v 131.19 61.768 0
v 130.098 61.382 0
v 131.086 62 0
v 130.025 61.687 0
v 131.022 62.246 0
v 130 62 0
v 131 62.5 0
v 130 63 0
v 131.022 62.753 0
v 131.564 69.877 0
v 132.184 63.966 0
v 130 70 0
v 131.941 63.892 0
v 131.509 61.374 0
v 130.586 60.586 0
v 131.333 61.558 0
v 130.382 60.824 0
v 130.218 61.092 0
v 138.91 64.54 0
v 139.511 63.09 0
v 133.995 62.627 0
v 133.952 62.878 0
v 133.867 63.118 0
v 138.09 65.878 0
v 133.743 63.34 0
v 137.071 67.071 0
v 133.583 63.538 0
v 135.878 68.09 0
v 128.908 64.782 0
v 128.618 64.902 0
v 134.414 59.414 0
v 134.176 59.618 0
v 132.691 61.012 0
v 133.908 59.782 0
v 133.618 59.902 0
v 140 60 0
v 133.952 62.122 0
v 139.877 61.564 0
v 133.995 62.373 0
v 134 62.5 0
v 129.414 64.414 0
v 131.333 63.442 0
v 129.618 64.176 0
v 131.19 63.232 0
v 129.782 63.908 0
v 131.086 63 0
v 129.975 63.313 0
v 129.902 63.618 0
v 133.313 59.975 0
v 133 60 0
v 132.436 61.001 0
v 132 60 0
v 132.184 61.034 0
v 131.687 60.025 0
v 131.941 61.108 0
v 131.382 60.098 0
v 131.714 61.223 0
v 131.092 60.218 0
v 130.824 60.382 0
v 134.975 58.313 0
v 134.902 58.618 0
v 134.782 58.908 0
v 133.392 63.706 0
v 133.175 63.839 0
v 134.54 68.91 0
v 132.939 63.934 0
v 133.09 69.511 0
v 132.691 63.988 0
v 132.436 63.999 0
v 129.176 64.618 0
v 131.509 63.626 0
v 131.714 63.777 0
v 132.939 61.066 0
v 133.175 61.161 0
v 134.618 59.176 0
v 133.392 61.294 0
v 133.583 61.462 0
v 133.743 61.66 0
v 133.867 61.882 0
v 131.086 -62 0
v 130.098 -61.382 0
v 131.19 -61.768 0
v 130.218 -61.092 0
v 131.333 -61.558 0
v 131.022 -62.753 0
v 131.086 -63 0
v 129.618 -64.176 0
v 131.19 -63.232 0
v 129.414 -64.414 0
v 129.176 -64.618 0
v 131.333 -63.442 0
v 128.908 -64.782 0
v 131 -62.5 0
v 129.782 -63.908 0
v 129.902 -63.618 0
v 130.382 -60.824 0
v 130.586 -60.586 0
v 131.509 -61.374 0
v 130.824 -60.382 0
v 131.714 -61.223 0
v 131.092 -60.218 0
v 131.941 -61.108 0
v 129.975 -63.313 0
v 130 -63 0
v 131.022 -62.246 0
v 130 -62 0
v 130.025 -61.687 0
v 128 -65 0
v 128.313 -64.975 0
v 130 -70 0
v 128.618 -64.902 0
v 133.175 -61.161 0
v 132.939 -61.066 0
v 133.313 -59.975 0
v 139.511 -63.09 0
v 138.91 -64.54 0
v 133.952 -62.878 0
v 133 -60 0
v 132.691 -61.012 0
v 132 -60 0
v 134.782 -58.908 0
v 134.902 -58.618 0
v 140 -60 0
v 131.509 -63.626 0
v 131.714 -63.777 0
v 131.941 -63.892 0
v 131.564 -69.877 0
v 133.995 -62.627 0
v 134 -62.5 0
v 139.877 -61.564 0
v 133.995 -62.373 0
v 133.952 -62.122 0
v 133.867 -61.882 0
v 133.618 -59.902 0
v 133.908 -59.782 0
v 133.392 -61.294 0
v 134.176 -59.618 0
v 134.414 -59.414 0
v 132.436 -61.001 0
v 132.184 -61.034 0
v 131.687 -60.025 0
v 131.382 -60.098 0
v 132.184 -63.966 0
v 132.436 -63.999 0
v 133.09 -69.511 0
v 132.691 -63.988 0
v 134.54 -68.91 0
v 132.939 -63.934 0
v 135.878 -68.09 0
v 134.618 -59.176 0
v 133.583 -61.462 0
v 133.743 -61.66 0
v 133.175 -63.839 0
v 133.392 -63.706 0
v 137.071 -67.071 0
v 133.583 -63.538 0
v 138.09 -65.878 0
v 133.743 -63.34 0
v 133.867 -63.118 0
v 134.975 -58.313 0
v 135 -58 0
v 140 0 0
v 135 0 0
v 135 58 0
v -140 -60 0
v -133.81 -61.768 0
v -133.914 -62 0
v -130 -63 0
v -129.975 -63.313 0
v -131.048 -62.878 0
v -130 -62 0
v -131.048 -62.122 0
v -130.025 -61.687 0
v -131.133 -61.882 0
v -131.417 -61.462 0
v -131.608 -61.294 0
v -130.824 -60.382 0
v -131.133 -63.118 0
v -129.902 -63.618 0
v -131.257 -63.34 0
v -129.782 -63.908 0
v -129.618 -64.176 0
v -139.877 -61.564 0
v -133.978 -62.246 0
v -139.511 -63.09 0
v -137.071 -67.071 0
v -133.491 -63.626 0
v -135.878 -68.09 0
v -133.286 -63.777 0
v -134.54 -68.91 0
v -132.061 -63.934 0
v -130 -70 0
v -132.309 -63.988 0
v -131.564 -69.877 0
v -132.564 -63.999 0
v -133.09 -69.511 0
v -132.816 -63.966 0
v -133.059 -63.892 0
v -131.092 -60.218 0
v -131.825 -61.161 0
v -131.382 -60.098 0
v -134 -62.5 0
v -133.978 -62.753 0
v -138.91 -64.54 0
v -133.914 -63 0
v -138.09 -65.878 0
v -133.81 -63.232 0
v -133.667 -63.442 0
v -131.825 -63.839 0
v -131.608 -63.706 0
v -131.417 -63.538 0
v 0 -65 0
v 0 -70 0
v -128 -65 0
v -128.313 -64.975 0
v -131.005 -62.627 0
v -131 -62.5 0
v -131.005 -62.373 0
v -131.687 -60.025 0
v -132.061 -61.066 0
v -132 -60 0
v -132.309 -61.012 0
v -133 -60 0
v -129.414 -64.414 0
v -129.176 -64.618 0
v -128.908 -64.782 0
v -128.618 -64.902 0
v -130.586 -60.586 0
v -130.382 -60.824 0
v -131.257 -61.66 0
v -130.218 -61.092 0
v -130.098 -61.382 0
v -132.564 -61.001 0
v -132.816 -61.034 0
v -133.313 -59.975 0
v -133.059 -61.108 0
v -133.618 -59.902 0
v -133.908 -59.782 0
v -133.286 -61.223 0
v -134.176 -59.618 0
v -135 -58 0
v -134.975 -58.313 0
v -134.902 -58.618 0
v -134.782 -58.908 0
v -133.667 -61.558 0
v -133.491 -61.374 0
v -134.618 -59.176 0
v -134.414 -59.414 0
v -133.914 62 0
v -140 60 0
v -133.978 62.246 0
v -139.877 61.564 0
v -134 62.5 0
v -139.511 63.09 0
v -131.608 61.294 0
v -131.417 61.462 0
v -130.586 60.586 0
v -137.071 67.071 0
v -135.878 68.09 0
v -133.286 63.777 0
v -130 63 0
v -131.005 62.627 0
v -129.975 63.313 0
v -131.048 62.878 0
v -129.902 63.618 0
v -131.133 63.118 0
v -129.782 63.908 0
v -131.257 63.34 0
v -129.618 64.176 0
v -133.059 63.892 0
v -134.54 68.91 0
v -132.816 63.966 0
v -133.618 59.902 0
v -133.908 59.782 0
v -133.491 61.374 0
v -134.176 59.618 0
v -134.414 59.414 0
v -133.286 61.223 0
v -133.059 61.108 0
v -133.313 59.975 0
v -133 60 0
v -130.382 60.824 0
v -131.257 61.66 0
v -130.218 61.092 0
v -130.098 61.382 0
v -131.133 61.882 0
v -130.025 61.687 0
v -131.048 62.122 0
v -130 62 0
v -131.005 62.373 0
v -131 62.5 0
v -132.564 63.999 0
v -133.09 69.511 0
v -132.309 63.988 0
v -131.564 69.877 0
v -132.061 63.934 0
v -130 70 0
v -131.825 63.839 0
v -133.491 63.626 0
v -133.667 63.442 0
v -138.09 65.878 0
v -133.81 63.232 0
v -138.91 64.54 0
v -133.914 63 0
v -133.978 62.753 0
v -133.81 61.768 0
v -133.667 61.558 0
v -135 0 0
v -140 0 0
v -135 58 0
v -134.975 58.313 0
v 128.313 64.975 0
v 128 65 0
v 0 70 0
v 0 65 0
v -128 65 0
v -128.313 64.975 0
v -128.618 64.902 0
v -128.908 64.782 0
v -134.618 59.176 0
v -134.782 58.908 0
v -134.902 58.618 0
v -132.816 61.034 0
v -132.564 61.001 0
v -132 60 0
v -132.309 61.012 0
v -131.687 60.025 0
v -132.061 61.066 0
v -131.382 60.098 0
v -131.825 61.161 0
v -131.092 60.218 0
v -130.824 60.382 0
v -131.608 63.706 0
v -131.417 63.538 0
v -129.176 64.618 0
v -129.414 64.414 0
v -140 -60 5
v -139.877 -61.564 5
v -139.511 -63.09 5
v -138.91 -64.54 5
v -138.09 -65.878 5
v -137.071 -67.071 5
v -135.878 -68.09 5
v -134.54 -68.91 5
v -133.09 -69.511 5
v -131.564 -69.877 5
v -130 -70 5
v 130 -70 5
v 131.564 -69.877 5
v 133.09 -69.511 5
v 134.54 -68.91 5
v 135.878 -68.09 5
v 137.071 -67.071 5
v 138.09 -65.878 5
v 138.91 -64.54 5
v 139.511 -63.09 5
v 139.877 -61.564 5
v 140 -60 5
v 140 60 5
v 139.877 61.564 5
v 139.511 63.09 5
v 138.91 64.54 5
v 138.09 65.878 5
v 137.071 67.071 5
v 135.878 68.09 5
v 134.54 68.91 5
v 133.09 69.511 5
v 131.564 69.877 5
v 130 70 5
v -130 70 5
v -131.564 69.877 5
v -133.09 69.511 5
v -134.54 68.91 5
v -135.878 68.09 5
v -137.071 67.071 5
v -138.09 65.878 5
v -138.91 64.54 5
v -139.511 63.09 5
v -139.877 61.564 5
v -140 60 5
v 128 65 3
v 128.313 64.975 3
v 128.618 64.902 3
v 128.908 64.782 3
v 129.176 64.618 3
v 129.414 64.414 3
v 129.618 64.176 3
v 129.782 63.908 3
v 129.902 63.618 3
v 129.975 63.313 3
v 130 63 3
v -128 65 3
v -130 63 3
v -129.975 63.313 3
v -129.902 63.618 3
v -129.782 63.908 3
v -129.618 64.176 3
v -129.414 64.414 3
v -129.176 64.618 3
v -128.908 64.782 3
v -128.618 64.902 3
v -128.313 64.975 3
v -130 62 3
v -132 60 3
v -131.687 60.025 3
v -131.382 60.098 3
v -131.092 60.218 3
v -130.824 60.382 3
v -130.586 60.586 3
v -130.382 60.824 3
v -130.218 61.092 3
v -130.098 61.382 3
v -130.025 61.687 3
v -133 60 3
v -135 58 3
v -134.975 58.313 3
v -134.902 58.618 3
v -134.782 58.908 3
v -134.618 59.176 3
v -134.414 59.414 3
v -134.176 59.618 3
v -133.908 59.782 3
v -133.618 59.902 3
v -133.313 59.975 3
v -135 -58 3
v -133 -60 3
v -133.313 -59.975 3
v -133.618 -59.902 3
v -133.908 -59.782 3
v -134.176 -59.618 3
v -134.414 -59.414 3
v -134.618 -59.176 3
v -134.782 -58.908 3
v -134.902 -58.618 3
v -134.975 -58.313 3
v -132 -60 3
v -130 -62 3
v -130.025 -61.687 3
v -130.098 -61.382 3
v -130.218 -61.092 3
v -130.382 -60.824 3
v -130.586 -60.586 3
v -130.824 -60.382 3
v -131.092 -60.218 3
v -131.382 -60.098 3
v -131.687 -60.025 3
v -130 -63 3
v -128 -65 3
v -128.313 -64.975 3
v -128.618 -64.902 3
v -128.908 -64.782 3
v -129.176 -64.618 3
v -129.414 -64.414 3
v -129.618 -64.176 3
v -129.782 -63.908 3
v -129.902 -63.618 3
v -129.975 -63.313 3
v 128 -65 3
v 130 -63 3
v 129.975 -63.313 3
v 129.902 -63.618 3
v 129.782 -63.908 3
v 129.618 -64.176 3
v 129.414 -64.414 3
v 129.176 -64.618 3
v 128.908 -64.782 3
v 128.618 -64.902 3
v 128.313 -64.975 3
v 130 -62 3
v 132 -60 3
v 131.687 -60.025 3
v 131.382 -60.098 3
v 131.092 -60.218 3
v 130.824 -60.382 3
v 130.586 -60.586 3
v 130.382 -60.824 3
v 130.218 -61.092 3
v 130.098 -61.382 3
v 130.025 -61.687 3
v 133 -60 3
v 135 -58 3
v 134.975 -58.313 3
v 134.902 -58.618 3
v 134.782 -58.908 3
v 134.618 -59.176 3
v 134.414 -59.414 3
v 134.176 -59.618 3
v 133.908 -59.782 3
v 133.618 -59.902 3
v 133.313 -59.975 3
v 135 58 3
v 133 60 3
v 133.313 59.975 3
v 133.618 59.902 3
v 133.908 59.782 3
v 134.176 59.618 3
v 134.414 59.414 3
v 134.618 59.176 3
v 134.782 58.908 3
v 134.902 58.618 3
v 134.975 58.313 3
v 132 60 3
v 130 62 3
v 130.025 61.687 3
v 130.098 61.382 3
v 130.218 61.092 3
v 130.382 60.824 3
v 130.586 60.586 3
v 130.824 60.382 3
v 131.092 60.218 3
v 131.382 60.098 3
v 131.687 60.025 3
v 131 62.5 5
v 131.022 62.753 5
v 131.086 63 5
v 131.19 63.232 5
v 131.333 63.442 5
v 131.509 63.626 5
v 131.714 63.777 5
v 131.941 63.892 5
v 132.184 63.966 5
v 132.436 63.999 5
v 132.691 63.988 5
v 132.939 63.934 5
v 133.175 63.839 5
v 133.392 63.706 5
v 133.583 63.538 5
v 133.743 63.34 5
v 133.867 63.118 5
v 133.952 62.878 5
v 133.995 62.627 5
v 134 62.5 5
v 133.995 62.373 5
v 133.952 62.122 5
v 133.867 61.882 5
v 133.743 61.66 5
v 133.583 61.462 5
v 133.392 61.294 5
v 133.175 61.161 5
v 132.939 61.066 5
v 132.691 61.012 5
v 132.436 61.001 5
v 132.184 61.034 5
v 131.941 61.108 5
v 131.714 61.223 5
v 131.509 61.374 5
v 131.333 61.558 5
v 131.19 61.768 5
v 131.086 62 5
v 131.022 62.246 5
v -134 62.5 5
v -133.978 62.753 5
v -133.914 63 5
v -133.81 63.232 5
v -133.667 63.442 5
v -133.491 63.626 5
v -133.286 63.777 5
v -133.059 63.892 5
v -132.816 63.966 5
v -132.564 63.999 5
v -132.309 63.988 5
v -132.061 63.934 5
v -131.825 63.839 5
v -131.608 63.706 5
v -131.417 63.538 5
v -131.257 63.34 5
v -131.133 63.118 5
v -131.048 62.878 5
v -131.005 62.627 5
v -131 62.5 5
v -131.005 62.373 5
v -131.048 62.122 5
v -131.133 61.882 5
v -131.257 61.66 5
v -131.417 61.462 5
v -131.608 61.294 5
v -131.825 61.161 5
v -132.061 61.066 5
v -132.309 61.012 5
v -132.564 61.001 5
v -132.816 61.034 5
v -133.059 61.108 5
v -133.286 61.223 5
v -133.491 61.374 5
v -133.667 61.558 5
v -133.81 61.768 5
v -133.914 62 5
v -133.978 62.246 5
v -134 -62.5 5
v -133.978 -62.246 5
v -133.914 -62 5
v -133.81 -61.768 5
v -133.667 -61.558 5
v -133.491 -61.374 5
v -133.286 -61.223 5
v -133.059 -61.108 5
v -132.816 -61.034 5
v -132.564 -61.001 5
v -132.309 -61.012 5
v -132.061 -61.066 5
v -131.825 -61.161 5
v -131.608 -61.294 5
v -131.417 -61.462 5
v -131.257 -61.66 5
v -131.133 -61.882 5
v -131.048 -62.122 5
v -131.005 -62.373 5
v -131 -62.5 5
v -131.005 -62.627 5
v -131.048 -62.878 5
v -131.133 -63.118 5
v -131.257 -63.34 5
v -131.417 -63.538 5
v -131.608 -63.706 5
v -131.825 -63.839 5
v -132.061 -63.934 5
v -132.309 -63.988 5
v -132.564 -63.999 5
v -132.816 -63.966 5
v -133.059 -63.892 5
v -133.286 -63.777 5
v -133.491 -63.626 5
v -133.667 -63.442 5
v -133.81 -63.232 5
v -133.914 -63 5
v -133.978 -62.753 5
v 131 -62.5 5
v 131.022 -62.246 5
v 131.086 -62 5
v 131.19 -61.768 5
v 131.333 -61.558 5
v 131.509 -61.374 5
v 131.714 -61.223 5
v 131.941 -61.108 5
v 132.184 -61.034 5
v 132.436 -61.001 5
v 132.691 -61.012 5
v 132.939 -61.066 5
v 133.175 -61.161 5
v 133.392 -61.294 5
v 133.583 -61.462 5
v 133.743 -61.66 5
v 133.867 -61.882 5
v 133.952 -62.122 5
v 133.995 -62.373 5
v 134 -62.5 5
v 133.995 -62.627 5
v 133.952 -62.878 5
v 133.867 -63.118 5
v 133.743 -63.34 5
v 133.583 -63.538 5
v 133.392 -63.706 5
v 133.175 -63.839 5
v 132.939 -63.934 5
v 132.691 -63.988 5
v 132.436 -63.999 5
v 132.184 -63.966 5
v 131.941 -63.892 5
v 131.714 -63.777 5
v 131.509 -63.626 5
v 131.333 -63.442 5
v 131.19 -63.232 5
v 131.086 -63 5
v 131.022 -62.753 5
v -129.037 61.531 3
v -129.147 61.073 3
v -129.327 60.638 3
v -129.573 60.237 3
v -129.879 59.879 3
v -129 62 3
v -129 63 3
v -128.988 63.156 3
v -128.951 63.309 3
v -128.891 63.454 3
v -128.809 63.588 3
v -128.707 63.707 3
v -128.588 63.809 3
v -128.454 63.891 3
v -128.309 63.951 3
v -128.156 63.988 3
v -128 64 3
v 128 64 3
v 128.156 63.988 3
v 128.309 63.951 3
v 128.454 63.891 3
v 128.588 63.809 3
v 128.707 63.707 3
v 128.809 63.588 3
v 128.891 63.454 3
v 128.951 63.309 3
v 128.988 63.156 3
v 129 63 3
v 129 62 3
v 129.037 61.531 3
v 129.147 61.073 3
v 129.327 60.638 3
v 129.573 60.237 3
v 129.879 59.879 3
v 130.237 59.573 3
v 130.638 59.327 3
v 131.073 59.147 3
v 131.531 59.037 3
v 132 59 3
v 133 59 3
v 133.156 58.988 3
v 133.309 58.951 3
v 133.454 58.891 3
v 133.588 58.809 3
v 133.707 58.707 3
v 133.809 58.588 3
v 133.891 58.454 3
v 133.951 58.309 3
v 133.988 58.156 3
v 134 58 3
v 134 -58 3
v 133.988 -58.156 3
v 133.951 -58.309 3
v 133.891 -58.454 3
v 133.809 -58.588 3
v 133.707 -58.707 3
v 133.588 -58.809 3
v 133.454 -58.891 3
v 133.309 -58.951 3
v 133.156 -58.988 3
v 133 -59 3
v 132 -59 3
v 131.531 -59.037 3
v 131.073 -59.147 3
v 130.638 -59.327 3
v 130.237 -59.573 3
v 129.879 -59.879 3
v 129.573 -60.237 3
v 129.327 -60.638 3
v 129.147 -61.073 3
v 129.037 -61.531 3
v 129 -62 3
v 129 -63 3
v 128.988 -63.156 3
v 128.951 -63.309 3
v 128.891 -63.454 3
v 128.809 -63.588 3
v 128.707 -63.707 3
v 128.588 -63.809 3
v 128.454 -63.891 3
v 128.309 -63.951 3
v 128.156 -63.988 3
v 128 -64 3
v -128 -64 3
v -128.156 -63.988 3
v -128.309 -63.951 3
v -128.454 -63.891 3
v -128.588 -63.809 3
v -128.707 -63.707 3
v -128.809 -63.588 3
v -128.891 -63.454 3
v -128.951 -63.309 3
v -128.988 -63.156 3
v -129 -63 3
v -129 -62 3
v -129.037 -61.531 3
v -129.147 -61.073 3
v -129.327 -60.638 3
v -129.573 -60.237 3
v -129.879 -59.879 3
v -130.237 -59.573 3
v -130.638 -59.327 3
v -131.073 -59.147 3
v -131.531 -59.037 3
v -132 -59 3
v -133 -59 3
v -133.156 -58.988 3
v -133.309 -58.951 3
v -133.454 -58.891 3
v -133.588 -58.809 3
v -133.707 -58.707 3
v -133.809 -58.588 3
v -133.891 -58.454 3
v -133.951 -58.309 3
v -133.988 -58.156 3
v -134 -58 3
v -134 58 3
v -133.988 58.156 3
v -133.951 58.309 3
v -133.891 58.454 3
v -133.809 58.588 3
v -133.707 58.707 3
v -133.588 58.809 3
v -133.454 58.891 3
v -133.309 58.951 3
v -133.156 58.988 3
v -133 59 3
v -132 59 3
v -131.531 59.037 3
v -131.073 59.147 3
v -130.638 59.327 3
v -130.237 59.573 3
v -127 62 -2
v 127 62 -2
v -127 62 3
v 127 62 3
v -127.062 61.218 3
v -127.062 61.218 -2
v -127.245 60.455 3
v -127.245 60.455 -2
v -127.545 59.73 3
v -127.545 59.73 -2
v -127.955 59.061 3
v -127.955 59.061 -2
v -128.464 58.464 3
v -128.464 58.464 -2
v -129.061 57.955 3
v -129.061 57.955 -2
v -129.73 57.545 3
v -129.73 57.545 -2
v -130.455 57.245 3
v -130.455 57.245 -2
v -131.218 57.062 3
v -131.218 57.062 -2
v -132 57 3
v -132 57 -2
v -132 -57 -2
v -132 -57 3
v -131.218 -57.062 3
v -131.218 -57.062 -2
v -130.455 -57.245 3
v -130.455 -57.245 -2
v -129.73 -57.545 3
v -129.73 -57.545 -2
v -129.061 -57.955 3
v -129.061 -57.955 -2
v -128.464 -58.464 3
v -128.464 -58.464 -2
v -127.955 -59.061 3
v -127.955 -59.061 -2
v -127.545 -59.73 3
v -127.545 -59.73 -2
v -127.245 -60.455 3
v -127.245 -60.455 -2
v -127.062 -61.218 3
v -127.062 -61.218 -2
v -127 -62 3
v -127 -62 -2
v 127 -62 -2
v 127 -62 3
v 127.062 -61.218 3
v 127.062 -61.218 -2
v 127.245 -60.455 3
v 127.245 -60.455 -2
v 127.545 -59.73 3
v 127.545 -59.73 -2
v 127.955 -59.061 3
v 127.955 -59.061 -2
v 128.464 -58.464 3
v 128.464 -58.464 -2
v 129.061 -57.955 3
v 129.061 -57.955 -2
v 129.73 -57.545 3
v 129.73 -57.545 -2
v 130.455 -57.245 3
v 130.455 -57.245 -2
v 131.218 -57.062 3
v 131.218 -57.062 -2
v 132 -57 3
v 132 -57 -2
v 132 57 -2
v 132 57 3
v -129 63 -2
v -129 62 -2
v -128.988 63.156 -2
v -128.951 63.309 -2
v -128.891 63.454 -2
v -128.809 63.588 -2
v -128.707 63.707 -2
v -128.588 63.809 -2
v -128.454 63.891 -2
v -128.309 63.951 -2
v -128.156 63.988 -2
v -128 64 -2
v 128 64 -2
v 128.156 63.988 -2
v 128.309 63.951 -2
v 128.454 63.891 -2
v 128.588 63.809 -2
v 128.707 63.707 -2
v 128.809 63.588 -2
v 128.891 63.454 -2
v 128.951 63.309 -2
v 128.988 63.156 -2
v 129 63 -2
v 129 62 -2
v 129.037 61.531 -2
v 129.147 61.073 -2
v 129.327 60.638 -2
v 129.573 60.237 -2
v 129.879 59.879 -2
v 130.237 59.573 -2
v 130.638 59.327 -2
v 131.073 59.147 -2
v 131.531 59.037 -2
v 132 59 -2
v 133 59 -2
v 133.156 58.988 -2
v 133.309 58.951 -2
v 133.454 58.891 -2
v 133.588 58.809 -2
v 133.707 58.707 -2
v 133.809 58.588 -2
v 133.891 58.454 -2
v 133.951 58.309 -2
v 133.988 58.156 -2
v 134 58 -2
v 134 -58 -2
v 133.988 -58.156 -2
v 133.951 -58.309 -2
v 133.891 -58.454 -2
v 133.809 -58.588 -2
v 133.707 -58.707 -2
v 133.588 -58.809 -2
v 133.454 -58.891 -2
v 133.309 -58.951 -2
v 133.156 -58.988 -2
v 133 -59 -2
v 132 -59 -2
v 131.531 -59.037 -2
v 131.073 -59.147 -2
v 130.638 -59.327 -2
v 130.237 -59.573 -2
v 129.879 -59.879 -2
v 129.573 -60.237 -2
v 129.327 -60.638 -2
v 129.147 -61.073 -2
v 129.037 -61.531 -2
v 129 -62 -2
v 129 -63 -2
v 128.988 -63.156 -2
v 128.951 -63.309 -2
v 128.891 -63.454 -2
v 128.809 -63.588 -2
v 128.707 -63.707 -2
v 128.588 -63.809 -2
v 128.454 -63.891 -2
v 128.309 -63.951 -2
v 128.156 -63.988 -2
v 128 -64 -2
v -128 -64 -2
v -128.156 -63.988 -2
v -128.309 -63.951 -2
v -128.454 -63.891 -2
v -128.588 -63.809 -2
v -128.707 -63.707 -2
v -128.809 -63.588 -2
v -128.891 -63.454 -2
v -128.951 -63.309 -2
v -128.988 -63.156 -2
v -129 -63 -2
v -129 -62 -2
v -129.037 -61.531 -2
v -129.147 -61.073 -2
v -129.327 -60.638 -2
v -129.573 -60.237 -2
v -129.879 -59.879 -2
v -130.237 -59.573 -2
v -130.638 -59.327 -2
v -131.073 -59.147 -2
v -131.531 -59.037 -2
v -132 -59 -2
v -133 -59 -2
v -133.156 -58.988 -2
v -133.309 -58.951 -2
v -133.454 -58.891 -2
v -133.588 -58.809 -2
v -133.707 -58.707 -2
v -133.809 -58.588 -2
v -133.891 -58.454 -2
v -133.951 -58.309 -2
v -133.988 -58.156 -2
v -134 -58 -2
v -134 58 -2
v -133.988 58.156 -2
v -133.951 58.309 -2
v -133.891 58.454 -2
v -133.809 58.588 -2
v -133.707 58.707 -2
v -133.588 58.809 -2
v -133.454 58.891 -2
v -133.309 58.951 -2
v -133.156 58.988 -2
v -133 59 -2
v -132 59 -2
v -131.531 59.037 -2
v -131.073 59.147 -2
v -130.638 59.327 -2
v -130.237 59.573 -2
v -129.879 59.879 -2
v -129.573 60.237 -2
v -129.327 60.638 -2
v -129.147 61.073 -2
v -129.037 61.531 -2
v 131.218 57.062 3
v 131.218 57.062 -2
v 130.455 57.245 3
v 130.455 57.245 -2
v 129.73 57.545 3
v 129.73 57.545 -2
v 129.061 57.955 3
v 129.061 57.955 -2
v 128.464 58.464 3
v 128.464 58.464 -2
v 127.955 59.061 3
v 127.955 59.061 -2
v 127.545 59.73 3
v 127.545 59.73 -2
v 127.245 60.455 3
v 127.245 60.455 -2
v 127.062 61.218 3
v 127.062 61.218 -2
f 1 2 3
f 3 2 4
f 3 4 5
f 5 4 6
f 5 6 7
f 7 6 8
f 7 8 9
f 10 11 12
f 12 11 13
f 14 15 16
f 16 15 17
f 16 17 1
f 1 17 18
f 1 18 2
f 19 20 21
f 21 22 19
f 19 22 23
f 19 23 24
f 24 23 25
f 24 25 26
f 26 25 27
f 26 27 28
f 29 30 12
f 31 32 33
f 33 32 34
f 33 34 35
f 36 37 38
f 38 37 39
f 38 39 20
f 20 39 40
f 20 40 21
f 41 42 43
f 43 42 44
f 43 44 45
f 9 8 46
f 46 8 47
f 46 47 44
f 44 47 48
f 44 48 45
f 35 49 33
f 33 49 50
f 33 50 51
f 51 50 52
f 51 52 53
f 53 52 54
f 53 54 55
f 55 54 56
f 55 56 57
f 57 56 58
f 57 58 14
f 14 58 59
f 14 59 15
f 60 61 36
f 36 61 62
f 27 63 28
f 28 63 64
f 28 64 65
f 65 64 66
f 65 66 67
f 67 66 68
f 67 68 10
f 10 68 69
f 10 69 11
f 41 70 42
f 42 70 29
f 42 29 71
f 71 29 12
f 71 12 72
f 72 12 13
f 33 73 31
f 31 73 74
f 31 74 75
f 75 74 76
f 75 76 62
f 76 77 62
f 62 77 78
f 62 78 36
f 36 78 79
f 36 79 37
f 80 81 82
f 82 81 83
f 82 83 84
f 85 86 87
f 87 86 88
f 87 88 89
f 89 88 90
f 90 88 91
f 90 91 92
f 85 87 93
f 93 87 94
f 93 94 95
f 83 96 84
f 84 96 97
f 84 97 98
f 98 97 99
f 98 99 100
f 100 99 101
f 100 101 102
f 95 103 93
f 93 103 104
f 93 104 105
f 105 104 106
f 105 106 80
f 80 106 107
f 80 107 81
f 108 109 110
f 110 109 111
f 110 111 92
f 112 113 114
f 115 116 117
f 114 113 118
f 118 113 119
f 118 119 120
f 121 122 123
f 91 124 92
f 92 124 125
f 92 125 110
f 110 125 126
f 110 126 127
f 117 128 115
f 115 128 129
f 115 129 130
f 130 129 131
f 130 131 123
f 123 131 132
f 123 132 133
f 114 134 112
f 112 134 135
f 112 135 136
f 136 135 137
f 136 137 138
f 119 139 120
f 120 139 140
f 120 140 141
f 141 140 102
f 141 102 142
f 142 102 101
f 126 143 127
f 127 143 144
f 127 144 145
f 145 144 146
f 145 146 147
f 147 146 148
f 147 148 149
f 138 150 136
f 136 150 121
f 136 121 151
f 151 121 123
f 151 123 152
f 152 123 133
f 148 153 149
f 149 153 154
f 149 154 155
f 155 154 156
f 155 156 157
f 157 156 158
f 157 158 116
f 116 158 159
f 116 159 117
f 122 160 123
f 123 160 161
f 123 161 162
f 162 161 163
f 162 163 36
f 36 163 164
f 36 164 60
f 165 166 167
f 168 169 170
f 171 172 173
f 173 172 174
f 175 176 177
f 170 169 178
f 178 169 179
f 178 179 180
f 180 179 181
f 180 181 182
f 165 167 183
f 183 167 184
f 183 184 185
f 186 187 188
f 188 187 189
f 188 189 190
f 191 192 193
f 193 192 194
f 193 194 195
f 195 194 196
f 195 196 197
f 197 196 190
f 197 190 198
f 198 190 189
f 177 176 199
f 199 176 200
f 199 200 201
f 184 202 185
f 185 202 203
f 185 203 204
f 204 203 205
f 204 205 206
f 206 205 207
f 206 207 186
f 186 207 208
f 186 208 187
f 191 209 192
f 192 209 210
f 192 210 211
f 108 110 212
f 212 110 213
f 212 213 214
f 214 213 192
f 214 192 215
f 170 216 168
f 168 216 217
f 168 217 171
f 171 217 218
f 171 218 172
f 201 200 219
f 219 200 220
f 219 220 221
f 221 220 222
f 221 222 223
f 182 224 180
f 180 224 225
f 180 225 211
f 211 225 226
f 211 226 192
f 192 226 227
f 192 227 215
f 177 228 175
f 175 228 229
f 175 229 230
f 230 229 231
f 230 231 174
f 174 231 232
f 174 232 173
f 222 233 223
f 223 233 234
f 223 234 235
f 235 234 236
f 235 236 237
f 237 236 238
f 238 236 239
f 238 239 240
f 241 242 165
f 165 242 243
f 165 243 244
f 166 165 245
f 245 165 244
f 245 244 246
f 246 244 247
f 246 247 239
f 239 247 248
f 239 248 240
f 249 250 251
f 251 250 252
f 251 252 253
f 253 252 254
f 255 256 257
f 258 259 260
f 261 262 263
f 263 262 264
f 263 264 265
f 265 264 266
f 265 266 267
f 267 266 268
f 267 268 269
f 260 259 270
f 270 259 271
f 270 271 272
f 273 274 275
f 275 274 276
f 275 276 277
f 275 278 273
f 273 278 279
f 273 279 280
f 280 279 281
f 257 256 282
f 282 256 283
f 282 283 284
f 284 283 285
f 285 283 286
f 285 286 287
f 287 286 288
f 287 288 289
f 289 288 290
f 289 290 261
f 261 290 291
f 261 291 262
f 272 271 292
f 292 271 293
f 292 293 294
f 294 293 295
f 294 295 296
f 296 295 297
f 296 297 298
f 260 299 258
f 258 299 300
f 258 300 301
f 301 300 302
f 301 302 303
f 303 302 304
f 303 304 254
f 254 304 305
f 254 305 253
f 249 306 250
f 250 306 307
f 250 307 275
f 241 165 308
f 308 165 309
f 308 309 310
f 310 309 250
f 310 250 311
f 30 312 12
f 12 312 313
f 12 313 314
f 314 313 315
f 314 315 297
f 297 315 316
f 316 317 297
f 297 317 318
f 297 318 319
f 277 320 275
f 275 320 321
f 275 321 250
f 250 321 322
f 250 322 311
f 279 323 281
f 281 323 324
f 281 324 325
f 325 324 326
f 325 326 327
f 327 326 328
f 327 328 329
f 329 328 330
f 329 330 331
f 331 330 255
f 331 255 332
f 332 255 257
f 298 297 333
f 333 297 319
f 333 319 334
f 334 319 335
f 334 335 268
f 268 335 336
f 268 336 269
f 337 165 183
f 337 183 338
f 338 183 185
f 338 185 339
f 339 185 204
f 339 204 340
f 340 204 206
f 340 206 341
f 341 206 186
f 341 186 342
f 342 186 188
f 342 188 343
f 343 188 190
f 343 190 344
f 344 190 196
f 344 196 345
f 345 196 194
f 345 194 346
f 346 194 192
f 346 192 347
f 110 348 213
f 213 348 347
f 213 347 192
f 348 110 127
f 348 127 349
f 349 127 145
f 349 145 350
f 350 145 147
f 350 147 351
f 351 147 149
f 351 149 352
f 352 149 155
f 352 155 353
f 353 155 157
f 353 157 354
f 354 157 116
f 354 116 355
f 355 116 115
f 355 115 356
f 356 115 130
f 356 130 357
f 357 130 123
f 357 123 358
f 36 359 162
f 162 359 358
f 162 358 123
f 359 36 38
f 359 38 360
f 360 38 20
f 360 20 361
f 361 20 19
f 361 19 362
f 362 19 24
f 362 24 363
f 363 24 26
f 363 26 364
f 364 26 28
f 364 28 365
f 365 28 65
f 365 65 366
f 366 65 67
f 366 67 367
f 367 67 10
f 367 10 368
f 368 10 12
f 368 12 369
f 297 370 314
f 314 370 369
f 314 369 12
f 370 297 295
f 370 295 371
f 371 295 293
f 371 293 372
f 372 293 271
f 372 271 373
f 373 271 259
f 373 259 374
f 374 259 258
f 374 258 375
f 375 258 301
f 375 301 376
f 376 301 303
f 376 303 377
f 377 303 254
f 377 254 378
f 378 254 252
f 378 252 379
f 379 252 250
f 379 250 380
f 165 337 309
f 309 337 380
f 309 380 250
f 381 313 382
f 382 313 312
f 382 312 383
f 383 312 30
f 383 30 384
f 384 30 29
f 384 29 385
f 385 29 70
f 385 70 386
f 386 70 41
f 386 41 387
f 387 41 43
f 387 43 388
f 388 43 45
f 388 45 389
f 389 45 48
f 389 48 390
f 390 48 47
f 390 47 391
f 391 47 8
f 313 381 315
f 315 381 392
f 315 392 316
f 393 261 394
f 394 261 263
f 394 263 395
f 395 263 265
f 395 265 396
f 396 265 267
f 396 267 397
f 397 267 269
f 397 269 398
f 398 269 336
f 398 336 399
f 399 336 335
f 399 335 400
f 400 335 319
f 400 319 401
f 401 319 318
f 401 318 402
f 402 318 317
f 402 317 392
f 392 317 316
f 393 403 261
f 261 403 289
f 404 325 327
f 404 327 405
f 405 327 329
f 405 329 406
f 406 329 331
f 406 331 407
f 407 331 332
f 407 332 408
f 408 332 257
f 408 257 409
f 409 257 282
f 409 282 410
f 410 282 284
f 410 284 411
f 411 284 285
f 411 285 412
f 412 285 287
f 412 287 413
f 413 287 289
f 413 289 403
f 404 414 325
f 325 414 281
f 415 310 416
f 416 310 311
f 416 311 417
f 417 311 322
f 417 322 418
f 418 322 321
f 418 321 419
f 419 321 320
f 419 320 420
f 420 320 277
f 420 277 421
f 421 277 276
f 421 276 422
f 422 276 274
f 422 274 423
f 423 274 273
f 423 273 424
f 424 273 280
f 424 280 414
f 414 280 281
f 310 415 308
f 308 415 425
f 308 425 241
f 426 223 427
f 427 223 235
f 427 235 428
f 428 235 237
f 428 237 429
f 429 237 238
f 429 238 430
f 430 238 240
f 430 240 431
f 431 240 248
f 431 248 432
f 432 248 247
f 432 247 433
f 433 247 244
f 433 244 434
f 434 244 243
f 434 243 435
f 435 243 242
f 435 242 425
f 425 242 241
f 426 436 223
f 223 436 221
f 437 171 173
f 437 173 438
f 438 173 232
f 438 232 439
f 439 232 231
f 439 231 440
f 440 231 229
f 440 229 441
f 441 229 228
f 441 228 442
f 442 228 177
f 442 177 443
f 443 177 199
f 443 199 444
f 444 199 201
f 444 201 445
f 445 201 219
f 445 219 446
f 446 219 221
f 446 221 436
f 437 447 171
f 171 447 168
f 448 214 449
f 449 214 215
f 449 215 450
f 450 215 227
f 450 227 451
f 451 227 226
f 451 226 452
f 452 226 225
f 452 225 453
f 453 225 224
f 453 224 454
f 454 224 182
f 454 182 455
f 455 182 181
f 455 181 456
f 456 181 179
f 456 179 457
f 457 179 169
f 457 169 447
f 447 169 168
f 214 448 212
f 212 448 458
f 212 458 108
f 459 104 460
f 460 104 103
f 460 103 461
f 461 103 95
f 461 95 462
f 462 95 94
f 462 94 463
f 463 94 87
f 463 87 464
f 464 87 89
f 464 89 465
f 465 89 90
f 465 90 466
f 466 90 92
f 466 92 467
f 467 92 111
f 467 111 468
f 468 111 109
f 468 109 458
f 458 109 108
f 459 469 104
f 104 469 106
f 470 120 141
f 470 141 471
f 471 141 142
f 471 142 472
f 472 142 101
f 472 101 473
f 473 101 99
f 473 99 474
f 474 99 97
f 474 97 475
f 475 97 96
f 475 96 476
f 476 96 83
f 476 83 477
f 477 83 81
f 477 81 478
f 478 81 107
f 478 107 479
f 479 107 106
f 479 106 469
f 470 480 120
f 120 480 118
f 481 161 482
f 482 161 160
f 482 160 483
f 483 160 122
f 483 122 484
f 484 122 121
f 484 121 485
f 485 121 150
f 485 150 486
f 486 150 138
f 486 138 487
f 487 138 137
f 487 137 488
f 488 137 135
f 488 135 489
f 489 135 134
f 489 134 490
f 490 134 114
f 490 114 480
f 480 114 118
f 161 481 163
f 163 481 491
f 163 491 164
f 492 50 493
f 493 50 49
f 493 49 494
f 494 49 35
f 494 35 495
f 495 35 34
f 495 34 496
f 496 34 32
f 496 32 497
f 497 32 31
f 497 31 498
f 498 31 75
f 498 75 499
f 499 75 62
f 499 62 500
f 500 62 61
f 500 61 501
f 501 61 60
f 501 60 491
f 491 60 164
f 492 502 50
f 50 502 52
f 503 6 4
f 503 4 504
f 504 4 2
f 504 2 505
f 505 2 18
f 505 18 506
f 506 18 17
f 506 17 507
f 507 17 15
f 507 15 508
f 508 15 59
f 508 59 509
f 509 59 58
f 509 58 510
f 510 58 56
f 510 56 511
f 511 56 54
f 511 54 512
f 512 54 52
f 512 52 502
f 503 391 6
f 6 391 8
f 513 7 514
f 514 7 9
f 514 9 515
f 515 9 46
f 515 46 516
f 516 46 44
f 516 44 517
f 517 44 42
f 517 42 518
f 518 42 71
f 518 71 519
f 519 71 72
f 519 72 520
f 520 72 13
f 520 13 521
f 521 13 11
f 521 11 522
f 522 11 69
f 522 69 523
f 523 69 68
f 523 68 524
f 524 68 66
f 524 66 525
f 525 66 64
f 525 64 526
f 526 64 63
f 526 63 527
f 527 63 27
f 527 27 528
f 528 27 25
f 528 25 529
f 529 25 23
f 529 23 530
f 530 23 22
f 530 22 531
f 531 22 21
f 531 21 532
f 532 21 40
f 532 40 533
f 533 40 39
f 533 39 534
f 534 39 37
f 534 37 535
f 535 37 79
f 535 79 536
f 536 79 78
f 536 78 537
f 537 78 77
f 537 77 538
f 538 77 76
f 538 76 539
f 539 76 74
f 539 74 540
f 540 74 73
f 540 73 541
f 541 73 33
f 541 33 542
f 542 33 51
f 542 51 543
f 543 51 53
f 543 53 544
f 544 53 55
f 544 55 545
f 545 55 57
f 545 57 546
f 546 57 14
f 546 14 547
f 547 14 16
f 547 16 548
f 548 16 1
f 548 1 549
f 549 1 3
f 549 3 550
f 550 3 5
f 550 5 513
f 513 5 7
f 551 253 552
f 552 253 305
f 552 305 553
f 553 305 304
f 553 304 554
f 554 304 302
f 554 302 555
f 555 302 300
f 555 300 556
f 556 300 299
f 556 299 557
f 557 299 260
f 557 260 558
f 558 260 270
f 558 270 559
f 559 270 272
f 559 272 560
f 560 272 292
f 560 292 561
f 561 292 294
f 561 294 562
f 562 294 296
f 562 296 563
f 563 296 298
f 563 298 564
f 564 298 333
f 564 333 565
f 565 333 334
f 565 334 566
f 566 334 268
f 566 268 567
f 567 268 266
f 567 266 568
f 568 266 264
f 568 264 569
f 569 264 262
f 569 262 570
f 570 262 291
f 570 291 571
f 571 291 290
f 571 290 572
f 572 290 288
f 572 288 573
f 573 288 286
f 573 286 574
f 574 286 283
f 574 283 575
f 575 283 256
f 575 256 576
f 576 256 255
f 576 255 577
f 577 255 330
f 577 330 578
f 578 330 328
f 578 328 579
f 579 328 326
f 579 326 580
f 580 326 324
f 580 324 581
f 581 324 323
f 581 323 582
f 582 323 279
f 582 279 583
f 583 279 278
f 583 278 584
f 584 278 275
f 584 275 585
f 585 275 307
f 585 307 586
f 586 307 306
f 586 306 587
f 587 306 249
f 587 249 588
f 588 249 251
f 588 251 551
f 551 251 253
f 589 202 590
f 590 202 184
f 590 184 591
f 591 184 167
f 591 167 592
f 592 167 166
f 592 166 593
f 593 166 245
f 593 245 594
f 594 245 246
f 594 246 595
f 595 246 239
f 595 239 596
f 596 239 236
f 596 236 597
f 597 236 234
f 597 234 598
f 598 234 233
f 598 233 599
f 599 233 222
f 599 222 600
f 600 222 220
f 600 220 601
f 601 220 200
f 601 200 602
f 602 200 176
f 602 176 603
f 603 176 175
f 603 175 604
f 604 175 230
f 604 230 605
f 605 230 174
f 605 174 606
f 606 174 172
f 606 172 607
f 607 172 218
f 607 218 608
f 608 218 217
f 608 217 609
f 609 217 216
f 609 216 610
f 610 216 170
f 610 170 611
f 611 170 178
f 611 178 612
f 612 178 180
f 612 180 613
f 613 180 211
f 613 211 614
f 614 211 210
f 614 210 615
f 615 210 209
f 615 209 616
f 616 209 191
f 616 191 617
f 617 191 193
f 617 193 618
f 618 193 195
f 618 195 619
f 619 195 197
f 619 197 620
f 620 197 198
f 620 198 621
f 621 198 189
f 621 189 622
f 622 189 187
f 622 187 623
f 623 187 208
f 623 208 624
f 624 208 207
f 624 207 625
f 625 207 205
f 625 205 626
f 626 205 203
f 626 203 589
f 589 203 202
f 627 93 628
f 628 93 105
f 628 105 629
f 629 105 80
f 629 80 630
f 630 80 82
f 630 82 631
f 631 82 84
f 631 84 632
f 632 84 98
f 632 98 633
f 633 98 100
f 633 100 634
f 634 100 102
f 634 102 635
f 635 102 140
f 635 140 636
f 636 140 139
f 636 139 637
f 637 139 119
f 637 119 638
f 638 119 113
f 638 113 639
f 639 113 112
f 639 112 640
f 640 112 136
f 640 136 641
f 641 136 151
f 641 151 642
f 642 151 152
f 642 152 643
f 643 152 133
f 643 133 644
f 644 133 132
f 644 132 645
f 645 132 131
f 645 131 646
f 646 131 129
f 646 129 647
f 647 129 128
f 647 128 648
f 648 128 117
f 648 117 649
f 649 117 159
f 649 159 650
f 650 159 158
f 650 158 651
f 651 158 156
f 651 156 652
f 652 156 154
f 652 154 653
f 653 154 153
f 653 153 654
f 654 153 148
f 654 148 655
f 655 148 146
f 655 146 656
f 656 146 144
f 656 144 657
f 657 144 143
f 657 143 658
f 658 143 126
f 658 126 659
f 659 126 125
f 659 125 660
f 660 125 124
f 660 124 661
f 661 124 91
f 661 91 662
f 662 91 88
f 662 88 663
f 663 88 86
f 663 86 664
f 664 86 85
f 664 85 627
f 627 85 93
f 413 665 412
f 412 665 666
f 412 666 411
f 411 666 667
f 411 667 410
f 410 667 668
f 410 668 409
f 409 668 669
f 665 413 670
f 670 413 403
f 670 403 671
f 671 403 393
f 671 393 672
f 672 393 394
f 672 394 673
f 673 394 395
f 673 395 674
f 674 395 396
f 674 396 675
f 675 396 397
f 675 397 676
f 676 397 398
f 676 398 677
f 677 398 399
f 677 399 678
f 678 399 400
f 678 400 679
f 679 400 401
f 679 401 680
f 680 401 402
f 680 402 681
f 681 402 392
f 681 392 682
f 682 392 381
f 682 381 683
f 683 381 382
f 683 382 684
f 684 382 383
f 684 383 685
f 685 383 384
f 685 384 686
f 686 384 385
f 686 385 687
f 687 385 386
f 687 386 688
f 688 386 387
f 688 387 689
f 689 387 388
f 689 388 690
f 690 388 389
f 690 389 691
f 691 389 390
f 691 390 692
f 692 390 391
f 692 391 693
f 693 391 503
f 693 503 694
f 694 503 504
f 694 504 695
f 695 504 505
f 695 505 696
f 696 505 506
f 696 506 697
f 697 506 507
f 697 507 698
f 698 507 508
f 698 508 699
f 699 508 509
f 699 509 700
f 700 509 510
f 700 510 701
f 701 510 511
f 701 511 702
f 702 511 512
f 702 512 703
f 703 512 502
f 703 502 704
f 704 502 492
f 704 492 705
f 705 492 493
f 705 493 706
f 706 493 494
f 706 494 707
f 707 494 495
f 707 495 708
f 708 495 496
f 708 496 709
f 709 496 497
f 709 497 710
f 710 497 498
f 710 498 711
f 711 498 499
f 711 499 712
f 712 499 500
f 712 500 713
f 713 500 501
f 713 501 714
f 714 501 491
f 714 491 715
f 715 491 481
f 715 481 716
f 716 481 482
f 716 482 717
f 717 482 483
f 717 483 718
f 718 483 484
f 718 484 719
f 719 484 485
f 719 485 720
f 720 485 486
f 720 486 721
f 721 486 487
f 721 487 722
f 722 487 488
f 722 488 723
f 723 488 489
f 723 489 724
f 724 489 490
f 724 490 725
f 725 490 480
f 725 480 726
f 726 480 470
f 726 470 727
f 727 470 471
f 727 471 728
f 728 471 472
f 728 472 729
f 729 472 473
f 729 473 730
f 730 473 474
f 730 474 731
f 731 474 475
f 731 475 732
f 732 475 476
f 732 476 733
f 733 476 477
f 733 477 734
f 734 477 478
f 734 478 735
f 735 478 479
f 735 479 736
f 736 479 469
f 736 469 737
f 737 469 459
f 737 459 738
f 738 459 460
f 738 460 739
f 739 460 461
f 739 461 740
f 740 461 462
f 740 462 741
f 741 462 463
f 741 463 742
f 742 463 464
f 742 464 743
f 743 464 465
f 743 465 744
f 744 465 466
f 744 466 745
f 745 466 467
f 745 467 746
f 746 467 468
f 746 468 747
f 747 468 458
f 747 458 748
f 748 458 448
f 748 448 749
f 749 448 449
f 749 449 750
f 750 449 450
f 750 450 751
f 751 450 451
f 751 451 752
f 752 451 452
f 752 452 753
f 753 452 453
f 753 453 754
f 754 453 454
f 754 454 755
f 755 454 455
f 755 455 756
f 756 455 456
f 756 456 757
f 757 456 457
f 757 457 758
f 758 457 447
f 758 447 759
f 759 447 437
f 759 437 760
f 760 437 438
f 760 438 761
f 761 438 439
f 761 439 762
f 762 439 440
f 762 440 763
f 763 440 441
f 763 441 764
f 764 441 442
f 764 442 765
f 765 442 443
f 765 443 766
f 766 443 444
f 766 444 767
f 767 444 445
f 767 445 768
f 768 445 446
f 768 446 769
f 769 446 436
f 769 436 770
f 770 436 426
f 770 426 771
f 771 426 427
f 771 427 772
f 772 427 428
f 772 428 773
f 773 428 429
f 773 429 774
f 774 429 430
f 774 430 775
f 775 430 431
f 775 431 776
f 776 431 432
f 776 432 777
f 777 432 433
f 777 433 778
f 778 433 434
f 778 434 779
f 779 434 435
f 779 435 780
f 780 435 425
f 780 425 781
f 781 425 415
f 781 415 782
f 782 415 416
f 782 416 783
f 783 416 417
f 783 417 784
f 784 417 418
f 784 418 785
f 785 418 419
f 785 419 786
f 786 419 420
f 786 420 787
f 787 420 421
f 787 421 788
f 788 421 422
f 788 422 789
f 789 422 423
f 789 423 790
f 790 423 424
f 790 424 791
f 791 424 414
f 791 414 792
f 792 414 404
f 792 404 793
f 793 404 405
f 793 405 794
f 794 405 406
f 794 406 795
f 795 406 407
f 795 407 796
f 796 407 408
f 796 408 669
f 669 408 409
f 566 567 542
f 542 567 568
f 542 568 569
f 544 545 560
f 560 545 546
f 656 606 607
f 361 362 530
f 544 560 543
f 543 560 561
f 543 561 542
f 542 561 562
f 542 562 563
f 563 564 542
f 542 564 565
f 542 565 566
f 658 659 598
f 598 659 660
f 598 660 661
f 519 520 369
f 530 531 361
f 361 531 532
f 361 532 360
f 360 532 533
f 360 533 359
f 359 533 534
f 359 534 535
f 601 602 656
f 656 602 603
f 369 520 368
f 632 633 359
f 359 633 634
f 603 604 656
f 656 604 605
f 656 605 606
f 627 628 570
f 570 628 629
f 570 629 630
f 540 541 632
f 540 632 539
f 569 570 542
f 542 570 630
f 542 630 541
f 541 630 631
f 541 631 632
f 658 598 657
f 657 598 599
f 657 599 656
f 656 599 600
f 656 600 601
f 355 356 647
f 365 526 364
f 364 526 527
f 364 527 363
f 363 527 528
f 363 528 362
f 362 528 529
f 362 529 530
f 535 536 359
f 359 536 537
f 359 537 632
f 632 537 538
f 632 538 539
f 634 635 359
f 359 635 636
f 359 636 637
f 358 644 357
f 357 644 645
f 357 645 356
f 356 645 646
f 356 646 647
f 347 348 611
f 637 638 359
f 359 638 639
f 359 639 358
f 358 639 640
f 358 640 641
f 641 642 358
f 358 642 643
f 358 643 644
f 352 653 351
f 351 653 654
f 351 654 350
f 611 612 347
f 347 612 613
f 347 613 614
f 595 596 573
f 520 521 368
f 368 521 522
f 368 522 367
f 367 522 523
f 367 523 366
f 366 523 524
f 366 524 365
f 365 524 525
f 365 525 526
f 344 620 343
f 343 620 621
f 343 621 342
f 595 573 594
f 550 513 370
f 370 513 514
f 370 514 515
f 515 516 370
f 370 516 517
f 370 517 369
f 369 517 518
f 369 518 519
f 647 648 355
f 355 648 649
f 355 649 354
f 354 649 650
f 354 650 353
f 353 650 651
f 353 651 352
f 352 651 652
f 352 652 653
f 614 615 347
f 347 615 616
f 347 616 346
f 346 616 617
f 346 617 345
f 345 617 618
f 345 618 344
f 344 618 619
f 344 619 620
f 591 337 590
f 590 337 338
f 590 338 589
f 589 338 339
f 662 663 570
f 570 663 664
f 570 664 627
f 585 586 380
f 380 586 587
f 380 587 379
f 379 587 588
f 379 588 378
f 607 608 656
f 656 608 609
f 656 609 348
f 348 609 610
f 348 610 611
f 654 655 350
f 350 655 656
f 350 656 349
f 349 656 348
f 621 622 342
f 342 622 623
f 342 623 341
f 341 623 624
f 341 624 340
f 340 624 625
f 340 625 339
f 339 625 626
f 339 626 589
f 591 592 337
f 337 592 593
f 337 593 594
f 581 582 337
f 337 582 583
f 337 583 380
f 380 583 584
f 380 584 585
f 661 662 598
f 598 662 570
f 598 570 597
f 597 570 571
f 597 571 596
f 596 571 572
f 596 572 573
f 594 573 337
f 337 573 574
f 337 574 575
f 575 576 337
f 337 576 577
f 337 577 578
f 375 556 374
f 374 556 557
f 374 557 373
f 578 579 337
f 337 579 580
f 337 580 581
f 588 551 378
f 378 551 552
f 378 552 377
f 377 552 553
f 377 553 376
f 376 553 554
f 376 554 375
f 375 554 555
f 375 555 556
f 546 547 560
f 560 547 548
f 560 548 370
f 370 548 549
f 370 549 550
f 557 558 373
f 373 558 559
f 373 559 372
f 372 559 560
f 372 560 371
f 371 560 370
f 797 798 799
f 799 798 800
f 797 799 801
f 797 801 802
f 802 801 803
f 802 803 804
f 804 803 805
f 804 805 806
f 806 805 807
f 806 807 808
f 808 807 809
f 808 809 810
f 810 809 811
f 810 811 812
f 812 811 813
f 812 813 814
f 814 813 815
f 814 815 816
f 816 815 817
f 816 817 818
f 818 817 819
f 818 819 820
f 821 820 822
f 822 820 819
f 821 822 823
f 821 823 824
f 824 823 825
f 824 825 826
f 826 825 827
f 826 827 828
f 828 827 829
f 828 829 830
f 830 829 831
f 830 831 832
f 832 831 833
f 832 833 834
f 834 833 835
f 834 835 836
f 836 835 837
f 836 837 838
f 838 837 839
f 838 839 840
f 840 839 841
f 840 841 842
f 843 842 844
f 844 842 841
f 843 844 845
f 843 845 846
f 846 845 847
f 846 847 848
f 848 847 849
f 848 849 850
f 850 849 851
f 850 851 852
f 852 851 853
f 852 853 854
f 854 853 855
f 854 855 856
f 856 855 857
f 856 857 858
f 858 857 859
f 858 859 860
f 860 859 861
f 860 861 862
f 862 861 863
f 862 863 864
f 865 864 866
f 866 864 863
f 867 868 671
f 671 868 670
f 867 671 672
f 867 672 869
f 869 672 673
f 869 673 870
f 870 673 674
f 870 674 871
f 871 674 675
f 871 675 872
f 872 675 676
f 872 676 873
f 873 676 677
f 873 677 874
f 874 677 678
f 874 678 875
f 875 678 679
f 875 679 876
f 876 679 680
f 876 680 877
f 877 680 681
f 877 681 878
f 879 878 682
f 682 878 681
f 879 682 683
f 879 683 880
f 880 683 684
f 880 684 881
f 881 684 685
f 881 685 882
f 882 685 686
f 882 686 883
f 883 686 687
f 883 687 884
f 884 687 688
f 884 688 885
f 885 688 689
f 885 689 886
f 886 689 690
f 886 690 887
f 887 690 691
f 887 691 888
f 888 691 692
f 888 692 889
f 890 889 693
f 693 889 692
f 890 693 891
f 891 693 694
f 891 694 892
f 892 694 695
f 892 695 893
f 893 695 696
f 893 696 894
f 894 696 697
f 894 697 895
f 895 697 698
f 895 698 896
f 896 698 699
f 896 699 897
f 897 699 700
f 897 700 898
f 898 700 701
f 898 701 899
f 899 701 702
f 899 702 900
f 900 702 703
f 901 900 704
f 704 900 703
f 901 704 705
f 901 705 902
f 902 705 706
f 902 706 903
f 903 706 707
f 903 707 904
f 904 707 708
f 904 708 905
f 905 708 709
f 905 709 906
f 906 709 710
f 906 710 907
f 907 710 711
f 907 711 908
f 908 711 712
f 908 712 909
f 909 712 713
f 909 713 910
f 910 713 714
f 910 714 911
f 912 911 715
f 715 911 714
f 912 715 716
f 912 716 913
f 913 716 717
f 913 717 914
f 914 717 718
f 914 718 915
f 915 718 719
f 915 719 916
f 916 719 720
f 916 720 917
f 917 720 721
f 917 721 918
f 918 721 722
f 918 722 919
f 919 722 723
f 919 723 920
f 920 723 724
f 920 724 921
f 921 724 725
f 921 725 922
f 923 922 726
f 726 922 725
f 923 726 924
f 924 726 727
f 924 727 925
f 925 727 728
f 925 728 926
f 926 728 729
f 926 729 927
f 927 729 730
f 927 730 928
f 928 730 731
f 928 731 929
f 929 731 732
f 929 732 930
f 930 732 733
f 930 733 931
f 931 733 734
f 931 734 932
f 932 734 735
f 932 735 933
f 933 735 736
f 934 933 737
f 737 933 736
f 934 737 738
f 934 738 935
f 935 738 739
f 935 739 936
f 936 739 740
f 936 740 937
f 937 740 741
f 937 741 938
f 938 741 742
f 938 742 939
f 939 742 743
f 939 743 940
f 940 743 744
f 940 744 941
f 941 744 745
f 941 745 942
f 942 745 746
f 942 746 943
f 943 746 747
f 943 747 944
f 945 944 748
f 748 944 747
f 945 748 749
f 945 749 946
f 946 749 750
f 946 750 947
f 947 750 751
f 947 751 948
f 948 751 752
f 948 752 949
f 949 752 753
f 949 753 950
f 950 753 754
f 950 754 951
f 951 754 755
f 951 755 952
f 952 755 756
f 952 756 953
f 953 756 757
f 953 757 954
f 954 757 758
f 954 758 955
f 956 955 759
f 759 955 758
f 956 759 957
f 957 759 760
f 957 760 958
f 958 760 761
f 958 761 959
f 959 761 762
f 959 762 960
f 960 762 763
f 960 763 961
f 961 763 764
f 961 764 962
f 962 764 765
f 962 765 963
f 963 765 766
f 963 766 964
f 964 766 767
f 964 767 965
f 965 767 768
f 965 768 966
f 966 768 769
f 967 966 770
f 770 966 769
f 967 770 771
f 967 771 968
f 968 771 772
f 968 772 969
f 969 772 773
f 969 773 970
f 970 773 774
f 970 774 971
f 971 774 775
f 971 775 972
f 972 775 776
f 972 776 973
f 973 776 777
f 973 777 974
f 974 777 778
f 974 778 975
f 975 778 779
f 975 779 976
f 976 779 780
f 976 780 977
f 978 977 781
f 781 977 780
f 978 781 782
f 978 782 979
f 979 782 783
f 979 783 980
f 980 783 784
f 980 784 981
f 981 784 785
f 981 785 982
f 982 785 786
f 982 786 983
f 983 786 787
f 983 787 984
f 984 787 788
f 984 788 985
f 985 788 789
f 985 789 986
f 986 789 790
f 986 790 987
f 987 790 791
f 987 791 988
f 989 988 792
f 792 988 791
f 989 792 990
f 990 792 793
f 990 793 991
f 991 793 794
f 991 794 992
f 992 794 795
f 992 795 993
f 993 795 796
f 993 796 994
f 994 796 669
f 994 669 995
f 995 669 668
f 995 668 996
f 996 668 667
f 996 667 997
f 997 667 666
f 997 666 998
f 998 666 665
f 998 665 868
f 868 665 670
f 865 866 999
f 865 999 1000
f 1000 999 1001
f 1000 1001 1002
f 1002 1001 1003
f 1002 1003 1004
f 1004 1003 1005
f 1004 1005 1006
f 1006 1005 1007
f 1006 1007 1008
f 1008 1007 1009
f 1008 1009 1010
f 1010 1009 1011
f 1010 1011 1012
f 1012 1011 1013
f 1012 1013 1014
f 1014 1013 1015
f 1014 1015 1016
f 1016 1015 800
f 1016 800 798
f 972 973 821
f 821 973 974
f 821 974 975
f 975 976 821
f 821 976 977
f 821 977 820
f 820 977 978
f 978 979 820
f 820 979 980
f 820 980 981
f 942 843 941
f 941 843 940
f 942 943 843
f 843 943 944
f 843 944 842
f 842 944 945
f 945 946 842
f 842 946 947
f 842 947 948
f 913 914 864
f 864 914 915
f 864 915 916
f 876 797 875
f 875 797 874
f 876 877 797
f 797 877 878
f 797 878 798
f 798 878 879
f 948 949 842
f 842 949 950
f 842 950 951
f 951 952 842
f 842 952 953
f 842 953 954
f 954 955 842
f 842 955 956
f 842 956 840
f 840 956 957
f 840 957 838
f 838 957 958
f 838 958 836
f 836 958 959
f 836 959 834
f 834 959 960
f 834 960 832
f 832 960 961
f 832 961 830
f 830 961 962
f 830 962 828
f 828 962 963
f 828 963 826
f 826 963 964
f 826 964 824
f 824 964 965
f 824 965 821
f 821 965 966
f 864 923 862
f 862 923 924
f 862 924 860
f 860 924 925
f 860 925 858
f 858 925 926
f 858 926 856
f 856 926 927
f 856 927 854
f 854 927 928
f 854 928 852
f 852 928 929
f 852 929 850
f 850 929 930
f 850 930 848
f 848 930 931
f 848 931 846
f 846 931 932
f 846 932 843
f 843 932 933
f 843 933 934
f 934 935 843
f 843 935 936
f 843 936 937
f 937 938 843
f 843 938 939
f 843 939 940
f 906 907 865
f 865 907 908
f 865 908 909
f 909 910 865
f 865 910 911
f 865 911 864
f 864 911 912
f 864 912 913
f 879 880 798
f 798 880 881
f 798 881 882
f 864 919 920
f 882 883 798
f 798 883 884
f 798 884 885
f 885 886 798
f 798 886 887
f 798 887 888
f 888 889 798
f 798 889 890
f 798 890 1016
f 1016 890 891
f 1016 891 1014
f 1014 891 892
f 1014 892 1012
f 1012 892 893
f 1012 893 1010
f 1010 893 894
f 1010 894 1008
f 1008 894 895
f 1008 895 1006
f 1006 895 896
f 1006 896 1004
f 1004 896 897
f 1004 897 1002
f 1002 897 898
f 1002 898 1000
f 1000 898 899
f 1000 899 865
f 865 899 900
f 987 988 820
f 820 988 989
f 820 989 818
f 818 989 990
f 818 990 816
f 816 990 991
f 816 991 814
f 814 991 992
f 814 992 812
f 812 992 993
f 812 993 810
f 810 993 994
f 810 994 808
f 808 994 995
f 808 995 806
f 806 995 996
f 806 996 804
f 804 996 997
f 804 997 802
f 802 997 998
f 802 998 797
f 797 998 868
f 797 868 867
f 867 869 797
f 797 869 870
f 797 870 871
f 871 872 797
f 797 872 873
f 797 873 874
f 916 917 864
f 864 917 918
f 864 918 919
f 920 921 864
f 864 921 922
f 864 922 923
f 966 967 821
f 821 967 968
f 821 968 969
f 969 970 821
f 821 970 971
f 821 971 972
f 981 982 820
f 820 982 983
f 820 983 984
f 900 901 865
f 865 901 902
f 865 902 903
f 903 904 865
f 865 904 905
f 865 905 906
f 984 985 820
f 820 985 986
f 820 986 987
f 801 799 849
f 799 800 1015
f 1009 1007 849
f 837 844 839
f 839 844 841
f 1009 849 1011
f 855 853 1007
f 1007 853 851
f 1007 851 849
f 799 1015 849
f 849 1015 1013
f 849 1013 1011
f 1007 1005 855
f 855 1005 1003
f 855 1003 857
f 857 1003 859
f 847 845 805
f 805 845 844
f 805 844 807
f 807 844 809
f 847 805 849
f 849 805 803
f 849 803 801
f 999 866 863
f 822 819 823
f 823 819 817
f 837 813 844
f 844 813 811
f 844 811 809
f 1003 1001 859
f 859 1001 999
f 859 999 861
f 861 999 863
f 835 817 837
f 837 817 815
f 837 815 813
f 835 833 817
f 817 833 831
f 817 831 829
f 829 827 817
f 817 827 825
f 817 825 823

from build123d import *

# Parameters (mm, degrees)
SKETCH1_R           = 1.5
BOSS_EXTRUDE2_DEPTH = 3
BOSS_EXTRUDE3_DEPTH = 2
SKETCH3_R           = 1.5
CUT_EXTRUDE1_DEPTH  = 15.208
BOSS_EXTRUDE4_DEPTH = 5


with BuildPart() as part:
    # Sketch1 → Boss-Extrude2 (new body)
    with BuildSketch(Plane.XY):
        with BuildLine():
            Line((130, -70), (-130, -70))
            ThreePointArc((-130, -70), (-137.071067812, -67.071067812), (-140, -60))
            Line((-140, -60), (-140, 60))
            ThreePointArc((-140, 60), (-137.071067812, 67.071067812), (-130, 70))
            Line((-130, 70), (130, 70))
            ThreePointArc((130, 70), (137.071067812, 67.071067812), (140, 60))
            Line((140, 60), (140, -60))
            ThreePointArc((140, -60), (137.071067812, -67.071067812), (130, -70))
        make_face()
        with Locations((132.5, 62.5)):
            Circle(SKETCH1_R, mode=Mode.SUBTRACT)
        with Locations((-132.5, 62.5)):
            Circle(SKETCH1_R, mode=Mode.SUBTRACT)
        with Locations((-132.5, -62.5)):
            Circle(SKETCH1_R, mode=Mode.SUBTRACT)
        with Locations((132.5, -62.5)):
            Circle(SKETCH1_R, mode=Mode.SUBTRACT)
        with BuildLine():
            Line((130, 62), (130, 63))
            ThreePointArc((130, 63), (129.414213562, 64.414213562), (128, 65))
            Line((128, 65), (-128, 65))
            ThreePointArc((-128, 65), (-129.414213562, 64.414213562), (-130, 63))
            Line((-130, 63), (-130, 62))
            ThreePointArc((-130, 62), (-130.585786438, 60.585786438), (-132, 60))
            Line((-132, 60), (-133, 60))
            ThreePointArc((-133, 60), (-134.414213562, 59.414213562), (-135, 58))
            Line((-135, 58), (-135, -58))
            ThreePointArc((-135, -58), (-134.414213562, -59.414213562), (-133, -60))
            Line((-133, -60), (-132, -60))
            ThreePointArc((-132, -60), (-130.585786438, -60.585786438), (-130, -62))
            Line((-130, -62), (-130, -63))
            ThreePointArc((-130, -63), (-129.414213562, -64.414213562), (-128, -65))
            Line((-128, -65), (128, -65))
            ThreePointArc((128, -65), (129.414213562, -64.414213562), (130, -63))
            Line((130, -63), (130, -62))
            ThreePointArc((130, -62), (130.585786438, -60.585786438), (132, -60))
            Line((132, -60), (133, -60))
            ThreePointArc((133, -60), (134.414213562, -59.414213562), (135, -58))
            Line((135, -58), (135, 58))
            ThreePointArc((135, 58), (134.414213562, 59.414213562), (133, 60))
            Line((133, 60), (132, 60))
            ThreePointArc((132, 60), (130.585786438, 60.585786438), (130, 62))
        make_face(mode=Mode.SUBTRACT)
    extrude(amount=BOSS_EXTRUDE2_DEPTH)

    # Sketch2 → Boss-Extrude3 (add)
    with BuildSketch(Plane.XY.offset(3)):
        with BuildLine():
            Line((-130, -70), (130, -70))
            ThreePointArc((130, -70), (137.071067812, -67.071067812), (140, -60))
            Line((140, -60), (140, 60))
            ThreePointArc((140, 60), (137.071067812, 67.071067812), (130, 70))
            Line((130, 70), (-130, 70))
            ThreePointArc((-130, 70), (-137.071067812, 67.071067812), (-140, 60))
            Line((-140, 60), (-140, -60))
            ThreePointArc((-140, -60), (-137.071067812, -67.071067812), (-130, -70))
        make_face()
    extrude(amount=BOSS_EXTRUDE3_DEPTH)

    # Sketch3 → Cut-Extrude1 (cut)
    with BuildSketch(Plane(origin=(0, 0, 0), x_dir=(-1, 0, 0), z_dir=(0, 0, -1))):
        with Locations(Location((-132.5, -62.5, 0), (0, 0, 180))):
            Circle(SKETCH3_R)
        with Locations(Location((-132.5, 62.5, 0), (0, 0, 180))):
            Circle(SKETCH3_R)
        with Locations(Location((132.5, -62.5, 0), (0, 0, 180))):
            Circle(SKETCH3_R)
        with Locations(Location((132.5, 62.5, 0), (0, 0, 180))):
            Circle(SKETCH3_R)
    extrude(amount=-CUT_EXTRUDE1_DEPTH, mode=Mode.SUBTRACT)

    # Sketch4 → Boss-Extrude4 (add)
    with BuildSketch(Plane(origin=(0, 0, 3), x_dir=(-1, 0, 0), z_dir=(0, 0, -1))):
        with BuildLine():
            Line((129, 62), (129, 63))
            ThreePointArc((129, 63), (128.707106781, 63.707106781), (128, 64))
            Line((128, 64), (-128, 64))
            ThreePointArc((-128, 64), (-128.707106781, 63.707106781), (-129, 63))
            Line((-129, 63), (-129, 62))
            ThreePointArc((-129, 62), (-129.878679656, 59.878679656), (-132, 59))
            Line((-132, 59), (-133, 59))
            ThreePointArc((-133, 59), (-133.707106781, 58.707106781), (-134, 58))
            Line((-134, 58), (-134, -58))
            ThreePointArc((-134, -58), (-133.707106781, -58.707106781), (-133, -59))
            Line((-133, -59), (-132, -59))
            ThreePointArc((-132, -59), (-129.878679656, -59.878679656), (-129, -62))
            Line((-129, -62), (-129, -63))
            ThreePointArc((-129, -63), (-128.707106781, -63.707106781), (-128, -64))
            Line((-128, -64), (128, -64))
            ThreePointArc((128, -64), (128.707106781, -63.707106781), (129, -63))
            Line((129, -63), (129, -62))
            ThreePointArc((129, -62), (129.878679656, -59.878679656), (132, -59))
            Line((132, -59), (133, -59))
            ThreePointArc((133, -59), (133.707106781, -58.707106781), (134, -58))
            Line((134, -58), (134, 58))
            ThreePointArc((134, 58), (133.707106781, 58.707106781), (133, 59))
            Line((133, 59), (132, 59))
            ThreePointArc((132, 59), (129.878679656, 59.878679656), (129, 62))
        make_face()
        with BuildLine():
            Line((127, 62), (-127, 62))
            ThreePointArc((-127, 62), (-128.464466094, 58.464466094), (-132, 57))
            Line((-132, 57), (-132, -57))
            ThreePointArc((-132, -57), (-128.464466094, -58.464466094), (-127, -62))
            Line((-127, -62), (127, -62))
            ThreePointArc((127, -62), (128.464466094, -58.464466094), (132, -57))
            Line((132, -57), (132, 57))
            ThreePointArc((132, 57), (128.464466094, 58.464466094), (127, 62))
        make_face(mode=Mode.SUBTRACT)
    extrude(amount=BOSS_EXTRUDE4_DEPTH)


solid = part.part
